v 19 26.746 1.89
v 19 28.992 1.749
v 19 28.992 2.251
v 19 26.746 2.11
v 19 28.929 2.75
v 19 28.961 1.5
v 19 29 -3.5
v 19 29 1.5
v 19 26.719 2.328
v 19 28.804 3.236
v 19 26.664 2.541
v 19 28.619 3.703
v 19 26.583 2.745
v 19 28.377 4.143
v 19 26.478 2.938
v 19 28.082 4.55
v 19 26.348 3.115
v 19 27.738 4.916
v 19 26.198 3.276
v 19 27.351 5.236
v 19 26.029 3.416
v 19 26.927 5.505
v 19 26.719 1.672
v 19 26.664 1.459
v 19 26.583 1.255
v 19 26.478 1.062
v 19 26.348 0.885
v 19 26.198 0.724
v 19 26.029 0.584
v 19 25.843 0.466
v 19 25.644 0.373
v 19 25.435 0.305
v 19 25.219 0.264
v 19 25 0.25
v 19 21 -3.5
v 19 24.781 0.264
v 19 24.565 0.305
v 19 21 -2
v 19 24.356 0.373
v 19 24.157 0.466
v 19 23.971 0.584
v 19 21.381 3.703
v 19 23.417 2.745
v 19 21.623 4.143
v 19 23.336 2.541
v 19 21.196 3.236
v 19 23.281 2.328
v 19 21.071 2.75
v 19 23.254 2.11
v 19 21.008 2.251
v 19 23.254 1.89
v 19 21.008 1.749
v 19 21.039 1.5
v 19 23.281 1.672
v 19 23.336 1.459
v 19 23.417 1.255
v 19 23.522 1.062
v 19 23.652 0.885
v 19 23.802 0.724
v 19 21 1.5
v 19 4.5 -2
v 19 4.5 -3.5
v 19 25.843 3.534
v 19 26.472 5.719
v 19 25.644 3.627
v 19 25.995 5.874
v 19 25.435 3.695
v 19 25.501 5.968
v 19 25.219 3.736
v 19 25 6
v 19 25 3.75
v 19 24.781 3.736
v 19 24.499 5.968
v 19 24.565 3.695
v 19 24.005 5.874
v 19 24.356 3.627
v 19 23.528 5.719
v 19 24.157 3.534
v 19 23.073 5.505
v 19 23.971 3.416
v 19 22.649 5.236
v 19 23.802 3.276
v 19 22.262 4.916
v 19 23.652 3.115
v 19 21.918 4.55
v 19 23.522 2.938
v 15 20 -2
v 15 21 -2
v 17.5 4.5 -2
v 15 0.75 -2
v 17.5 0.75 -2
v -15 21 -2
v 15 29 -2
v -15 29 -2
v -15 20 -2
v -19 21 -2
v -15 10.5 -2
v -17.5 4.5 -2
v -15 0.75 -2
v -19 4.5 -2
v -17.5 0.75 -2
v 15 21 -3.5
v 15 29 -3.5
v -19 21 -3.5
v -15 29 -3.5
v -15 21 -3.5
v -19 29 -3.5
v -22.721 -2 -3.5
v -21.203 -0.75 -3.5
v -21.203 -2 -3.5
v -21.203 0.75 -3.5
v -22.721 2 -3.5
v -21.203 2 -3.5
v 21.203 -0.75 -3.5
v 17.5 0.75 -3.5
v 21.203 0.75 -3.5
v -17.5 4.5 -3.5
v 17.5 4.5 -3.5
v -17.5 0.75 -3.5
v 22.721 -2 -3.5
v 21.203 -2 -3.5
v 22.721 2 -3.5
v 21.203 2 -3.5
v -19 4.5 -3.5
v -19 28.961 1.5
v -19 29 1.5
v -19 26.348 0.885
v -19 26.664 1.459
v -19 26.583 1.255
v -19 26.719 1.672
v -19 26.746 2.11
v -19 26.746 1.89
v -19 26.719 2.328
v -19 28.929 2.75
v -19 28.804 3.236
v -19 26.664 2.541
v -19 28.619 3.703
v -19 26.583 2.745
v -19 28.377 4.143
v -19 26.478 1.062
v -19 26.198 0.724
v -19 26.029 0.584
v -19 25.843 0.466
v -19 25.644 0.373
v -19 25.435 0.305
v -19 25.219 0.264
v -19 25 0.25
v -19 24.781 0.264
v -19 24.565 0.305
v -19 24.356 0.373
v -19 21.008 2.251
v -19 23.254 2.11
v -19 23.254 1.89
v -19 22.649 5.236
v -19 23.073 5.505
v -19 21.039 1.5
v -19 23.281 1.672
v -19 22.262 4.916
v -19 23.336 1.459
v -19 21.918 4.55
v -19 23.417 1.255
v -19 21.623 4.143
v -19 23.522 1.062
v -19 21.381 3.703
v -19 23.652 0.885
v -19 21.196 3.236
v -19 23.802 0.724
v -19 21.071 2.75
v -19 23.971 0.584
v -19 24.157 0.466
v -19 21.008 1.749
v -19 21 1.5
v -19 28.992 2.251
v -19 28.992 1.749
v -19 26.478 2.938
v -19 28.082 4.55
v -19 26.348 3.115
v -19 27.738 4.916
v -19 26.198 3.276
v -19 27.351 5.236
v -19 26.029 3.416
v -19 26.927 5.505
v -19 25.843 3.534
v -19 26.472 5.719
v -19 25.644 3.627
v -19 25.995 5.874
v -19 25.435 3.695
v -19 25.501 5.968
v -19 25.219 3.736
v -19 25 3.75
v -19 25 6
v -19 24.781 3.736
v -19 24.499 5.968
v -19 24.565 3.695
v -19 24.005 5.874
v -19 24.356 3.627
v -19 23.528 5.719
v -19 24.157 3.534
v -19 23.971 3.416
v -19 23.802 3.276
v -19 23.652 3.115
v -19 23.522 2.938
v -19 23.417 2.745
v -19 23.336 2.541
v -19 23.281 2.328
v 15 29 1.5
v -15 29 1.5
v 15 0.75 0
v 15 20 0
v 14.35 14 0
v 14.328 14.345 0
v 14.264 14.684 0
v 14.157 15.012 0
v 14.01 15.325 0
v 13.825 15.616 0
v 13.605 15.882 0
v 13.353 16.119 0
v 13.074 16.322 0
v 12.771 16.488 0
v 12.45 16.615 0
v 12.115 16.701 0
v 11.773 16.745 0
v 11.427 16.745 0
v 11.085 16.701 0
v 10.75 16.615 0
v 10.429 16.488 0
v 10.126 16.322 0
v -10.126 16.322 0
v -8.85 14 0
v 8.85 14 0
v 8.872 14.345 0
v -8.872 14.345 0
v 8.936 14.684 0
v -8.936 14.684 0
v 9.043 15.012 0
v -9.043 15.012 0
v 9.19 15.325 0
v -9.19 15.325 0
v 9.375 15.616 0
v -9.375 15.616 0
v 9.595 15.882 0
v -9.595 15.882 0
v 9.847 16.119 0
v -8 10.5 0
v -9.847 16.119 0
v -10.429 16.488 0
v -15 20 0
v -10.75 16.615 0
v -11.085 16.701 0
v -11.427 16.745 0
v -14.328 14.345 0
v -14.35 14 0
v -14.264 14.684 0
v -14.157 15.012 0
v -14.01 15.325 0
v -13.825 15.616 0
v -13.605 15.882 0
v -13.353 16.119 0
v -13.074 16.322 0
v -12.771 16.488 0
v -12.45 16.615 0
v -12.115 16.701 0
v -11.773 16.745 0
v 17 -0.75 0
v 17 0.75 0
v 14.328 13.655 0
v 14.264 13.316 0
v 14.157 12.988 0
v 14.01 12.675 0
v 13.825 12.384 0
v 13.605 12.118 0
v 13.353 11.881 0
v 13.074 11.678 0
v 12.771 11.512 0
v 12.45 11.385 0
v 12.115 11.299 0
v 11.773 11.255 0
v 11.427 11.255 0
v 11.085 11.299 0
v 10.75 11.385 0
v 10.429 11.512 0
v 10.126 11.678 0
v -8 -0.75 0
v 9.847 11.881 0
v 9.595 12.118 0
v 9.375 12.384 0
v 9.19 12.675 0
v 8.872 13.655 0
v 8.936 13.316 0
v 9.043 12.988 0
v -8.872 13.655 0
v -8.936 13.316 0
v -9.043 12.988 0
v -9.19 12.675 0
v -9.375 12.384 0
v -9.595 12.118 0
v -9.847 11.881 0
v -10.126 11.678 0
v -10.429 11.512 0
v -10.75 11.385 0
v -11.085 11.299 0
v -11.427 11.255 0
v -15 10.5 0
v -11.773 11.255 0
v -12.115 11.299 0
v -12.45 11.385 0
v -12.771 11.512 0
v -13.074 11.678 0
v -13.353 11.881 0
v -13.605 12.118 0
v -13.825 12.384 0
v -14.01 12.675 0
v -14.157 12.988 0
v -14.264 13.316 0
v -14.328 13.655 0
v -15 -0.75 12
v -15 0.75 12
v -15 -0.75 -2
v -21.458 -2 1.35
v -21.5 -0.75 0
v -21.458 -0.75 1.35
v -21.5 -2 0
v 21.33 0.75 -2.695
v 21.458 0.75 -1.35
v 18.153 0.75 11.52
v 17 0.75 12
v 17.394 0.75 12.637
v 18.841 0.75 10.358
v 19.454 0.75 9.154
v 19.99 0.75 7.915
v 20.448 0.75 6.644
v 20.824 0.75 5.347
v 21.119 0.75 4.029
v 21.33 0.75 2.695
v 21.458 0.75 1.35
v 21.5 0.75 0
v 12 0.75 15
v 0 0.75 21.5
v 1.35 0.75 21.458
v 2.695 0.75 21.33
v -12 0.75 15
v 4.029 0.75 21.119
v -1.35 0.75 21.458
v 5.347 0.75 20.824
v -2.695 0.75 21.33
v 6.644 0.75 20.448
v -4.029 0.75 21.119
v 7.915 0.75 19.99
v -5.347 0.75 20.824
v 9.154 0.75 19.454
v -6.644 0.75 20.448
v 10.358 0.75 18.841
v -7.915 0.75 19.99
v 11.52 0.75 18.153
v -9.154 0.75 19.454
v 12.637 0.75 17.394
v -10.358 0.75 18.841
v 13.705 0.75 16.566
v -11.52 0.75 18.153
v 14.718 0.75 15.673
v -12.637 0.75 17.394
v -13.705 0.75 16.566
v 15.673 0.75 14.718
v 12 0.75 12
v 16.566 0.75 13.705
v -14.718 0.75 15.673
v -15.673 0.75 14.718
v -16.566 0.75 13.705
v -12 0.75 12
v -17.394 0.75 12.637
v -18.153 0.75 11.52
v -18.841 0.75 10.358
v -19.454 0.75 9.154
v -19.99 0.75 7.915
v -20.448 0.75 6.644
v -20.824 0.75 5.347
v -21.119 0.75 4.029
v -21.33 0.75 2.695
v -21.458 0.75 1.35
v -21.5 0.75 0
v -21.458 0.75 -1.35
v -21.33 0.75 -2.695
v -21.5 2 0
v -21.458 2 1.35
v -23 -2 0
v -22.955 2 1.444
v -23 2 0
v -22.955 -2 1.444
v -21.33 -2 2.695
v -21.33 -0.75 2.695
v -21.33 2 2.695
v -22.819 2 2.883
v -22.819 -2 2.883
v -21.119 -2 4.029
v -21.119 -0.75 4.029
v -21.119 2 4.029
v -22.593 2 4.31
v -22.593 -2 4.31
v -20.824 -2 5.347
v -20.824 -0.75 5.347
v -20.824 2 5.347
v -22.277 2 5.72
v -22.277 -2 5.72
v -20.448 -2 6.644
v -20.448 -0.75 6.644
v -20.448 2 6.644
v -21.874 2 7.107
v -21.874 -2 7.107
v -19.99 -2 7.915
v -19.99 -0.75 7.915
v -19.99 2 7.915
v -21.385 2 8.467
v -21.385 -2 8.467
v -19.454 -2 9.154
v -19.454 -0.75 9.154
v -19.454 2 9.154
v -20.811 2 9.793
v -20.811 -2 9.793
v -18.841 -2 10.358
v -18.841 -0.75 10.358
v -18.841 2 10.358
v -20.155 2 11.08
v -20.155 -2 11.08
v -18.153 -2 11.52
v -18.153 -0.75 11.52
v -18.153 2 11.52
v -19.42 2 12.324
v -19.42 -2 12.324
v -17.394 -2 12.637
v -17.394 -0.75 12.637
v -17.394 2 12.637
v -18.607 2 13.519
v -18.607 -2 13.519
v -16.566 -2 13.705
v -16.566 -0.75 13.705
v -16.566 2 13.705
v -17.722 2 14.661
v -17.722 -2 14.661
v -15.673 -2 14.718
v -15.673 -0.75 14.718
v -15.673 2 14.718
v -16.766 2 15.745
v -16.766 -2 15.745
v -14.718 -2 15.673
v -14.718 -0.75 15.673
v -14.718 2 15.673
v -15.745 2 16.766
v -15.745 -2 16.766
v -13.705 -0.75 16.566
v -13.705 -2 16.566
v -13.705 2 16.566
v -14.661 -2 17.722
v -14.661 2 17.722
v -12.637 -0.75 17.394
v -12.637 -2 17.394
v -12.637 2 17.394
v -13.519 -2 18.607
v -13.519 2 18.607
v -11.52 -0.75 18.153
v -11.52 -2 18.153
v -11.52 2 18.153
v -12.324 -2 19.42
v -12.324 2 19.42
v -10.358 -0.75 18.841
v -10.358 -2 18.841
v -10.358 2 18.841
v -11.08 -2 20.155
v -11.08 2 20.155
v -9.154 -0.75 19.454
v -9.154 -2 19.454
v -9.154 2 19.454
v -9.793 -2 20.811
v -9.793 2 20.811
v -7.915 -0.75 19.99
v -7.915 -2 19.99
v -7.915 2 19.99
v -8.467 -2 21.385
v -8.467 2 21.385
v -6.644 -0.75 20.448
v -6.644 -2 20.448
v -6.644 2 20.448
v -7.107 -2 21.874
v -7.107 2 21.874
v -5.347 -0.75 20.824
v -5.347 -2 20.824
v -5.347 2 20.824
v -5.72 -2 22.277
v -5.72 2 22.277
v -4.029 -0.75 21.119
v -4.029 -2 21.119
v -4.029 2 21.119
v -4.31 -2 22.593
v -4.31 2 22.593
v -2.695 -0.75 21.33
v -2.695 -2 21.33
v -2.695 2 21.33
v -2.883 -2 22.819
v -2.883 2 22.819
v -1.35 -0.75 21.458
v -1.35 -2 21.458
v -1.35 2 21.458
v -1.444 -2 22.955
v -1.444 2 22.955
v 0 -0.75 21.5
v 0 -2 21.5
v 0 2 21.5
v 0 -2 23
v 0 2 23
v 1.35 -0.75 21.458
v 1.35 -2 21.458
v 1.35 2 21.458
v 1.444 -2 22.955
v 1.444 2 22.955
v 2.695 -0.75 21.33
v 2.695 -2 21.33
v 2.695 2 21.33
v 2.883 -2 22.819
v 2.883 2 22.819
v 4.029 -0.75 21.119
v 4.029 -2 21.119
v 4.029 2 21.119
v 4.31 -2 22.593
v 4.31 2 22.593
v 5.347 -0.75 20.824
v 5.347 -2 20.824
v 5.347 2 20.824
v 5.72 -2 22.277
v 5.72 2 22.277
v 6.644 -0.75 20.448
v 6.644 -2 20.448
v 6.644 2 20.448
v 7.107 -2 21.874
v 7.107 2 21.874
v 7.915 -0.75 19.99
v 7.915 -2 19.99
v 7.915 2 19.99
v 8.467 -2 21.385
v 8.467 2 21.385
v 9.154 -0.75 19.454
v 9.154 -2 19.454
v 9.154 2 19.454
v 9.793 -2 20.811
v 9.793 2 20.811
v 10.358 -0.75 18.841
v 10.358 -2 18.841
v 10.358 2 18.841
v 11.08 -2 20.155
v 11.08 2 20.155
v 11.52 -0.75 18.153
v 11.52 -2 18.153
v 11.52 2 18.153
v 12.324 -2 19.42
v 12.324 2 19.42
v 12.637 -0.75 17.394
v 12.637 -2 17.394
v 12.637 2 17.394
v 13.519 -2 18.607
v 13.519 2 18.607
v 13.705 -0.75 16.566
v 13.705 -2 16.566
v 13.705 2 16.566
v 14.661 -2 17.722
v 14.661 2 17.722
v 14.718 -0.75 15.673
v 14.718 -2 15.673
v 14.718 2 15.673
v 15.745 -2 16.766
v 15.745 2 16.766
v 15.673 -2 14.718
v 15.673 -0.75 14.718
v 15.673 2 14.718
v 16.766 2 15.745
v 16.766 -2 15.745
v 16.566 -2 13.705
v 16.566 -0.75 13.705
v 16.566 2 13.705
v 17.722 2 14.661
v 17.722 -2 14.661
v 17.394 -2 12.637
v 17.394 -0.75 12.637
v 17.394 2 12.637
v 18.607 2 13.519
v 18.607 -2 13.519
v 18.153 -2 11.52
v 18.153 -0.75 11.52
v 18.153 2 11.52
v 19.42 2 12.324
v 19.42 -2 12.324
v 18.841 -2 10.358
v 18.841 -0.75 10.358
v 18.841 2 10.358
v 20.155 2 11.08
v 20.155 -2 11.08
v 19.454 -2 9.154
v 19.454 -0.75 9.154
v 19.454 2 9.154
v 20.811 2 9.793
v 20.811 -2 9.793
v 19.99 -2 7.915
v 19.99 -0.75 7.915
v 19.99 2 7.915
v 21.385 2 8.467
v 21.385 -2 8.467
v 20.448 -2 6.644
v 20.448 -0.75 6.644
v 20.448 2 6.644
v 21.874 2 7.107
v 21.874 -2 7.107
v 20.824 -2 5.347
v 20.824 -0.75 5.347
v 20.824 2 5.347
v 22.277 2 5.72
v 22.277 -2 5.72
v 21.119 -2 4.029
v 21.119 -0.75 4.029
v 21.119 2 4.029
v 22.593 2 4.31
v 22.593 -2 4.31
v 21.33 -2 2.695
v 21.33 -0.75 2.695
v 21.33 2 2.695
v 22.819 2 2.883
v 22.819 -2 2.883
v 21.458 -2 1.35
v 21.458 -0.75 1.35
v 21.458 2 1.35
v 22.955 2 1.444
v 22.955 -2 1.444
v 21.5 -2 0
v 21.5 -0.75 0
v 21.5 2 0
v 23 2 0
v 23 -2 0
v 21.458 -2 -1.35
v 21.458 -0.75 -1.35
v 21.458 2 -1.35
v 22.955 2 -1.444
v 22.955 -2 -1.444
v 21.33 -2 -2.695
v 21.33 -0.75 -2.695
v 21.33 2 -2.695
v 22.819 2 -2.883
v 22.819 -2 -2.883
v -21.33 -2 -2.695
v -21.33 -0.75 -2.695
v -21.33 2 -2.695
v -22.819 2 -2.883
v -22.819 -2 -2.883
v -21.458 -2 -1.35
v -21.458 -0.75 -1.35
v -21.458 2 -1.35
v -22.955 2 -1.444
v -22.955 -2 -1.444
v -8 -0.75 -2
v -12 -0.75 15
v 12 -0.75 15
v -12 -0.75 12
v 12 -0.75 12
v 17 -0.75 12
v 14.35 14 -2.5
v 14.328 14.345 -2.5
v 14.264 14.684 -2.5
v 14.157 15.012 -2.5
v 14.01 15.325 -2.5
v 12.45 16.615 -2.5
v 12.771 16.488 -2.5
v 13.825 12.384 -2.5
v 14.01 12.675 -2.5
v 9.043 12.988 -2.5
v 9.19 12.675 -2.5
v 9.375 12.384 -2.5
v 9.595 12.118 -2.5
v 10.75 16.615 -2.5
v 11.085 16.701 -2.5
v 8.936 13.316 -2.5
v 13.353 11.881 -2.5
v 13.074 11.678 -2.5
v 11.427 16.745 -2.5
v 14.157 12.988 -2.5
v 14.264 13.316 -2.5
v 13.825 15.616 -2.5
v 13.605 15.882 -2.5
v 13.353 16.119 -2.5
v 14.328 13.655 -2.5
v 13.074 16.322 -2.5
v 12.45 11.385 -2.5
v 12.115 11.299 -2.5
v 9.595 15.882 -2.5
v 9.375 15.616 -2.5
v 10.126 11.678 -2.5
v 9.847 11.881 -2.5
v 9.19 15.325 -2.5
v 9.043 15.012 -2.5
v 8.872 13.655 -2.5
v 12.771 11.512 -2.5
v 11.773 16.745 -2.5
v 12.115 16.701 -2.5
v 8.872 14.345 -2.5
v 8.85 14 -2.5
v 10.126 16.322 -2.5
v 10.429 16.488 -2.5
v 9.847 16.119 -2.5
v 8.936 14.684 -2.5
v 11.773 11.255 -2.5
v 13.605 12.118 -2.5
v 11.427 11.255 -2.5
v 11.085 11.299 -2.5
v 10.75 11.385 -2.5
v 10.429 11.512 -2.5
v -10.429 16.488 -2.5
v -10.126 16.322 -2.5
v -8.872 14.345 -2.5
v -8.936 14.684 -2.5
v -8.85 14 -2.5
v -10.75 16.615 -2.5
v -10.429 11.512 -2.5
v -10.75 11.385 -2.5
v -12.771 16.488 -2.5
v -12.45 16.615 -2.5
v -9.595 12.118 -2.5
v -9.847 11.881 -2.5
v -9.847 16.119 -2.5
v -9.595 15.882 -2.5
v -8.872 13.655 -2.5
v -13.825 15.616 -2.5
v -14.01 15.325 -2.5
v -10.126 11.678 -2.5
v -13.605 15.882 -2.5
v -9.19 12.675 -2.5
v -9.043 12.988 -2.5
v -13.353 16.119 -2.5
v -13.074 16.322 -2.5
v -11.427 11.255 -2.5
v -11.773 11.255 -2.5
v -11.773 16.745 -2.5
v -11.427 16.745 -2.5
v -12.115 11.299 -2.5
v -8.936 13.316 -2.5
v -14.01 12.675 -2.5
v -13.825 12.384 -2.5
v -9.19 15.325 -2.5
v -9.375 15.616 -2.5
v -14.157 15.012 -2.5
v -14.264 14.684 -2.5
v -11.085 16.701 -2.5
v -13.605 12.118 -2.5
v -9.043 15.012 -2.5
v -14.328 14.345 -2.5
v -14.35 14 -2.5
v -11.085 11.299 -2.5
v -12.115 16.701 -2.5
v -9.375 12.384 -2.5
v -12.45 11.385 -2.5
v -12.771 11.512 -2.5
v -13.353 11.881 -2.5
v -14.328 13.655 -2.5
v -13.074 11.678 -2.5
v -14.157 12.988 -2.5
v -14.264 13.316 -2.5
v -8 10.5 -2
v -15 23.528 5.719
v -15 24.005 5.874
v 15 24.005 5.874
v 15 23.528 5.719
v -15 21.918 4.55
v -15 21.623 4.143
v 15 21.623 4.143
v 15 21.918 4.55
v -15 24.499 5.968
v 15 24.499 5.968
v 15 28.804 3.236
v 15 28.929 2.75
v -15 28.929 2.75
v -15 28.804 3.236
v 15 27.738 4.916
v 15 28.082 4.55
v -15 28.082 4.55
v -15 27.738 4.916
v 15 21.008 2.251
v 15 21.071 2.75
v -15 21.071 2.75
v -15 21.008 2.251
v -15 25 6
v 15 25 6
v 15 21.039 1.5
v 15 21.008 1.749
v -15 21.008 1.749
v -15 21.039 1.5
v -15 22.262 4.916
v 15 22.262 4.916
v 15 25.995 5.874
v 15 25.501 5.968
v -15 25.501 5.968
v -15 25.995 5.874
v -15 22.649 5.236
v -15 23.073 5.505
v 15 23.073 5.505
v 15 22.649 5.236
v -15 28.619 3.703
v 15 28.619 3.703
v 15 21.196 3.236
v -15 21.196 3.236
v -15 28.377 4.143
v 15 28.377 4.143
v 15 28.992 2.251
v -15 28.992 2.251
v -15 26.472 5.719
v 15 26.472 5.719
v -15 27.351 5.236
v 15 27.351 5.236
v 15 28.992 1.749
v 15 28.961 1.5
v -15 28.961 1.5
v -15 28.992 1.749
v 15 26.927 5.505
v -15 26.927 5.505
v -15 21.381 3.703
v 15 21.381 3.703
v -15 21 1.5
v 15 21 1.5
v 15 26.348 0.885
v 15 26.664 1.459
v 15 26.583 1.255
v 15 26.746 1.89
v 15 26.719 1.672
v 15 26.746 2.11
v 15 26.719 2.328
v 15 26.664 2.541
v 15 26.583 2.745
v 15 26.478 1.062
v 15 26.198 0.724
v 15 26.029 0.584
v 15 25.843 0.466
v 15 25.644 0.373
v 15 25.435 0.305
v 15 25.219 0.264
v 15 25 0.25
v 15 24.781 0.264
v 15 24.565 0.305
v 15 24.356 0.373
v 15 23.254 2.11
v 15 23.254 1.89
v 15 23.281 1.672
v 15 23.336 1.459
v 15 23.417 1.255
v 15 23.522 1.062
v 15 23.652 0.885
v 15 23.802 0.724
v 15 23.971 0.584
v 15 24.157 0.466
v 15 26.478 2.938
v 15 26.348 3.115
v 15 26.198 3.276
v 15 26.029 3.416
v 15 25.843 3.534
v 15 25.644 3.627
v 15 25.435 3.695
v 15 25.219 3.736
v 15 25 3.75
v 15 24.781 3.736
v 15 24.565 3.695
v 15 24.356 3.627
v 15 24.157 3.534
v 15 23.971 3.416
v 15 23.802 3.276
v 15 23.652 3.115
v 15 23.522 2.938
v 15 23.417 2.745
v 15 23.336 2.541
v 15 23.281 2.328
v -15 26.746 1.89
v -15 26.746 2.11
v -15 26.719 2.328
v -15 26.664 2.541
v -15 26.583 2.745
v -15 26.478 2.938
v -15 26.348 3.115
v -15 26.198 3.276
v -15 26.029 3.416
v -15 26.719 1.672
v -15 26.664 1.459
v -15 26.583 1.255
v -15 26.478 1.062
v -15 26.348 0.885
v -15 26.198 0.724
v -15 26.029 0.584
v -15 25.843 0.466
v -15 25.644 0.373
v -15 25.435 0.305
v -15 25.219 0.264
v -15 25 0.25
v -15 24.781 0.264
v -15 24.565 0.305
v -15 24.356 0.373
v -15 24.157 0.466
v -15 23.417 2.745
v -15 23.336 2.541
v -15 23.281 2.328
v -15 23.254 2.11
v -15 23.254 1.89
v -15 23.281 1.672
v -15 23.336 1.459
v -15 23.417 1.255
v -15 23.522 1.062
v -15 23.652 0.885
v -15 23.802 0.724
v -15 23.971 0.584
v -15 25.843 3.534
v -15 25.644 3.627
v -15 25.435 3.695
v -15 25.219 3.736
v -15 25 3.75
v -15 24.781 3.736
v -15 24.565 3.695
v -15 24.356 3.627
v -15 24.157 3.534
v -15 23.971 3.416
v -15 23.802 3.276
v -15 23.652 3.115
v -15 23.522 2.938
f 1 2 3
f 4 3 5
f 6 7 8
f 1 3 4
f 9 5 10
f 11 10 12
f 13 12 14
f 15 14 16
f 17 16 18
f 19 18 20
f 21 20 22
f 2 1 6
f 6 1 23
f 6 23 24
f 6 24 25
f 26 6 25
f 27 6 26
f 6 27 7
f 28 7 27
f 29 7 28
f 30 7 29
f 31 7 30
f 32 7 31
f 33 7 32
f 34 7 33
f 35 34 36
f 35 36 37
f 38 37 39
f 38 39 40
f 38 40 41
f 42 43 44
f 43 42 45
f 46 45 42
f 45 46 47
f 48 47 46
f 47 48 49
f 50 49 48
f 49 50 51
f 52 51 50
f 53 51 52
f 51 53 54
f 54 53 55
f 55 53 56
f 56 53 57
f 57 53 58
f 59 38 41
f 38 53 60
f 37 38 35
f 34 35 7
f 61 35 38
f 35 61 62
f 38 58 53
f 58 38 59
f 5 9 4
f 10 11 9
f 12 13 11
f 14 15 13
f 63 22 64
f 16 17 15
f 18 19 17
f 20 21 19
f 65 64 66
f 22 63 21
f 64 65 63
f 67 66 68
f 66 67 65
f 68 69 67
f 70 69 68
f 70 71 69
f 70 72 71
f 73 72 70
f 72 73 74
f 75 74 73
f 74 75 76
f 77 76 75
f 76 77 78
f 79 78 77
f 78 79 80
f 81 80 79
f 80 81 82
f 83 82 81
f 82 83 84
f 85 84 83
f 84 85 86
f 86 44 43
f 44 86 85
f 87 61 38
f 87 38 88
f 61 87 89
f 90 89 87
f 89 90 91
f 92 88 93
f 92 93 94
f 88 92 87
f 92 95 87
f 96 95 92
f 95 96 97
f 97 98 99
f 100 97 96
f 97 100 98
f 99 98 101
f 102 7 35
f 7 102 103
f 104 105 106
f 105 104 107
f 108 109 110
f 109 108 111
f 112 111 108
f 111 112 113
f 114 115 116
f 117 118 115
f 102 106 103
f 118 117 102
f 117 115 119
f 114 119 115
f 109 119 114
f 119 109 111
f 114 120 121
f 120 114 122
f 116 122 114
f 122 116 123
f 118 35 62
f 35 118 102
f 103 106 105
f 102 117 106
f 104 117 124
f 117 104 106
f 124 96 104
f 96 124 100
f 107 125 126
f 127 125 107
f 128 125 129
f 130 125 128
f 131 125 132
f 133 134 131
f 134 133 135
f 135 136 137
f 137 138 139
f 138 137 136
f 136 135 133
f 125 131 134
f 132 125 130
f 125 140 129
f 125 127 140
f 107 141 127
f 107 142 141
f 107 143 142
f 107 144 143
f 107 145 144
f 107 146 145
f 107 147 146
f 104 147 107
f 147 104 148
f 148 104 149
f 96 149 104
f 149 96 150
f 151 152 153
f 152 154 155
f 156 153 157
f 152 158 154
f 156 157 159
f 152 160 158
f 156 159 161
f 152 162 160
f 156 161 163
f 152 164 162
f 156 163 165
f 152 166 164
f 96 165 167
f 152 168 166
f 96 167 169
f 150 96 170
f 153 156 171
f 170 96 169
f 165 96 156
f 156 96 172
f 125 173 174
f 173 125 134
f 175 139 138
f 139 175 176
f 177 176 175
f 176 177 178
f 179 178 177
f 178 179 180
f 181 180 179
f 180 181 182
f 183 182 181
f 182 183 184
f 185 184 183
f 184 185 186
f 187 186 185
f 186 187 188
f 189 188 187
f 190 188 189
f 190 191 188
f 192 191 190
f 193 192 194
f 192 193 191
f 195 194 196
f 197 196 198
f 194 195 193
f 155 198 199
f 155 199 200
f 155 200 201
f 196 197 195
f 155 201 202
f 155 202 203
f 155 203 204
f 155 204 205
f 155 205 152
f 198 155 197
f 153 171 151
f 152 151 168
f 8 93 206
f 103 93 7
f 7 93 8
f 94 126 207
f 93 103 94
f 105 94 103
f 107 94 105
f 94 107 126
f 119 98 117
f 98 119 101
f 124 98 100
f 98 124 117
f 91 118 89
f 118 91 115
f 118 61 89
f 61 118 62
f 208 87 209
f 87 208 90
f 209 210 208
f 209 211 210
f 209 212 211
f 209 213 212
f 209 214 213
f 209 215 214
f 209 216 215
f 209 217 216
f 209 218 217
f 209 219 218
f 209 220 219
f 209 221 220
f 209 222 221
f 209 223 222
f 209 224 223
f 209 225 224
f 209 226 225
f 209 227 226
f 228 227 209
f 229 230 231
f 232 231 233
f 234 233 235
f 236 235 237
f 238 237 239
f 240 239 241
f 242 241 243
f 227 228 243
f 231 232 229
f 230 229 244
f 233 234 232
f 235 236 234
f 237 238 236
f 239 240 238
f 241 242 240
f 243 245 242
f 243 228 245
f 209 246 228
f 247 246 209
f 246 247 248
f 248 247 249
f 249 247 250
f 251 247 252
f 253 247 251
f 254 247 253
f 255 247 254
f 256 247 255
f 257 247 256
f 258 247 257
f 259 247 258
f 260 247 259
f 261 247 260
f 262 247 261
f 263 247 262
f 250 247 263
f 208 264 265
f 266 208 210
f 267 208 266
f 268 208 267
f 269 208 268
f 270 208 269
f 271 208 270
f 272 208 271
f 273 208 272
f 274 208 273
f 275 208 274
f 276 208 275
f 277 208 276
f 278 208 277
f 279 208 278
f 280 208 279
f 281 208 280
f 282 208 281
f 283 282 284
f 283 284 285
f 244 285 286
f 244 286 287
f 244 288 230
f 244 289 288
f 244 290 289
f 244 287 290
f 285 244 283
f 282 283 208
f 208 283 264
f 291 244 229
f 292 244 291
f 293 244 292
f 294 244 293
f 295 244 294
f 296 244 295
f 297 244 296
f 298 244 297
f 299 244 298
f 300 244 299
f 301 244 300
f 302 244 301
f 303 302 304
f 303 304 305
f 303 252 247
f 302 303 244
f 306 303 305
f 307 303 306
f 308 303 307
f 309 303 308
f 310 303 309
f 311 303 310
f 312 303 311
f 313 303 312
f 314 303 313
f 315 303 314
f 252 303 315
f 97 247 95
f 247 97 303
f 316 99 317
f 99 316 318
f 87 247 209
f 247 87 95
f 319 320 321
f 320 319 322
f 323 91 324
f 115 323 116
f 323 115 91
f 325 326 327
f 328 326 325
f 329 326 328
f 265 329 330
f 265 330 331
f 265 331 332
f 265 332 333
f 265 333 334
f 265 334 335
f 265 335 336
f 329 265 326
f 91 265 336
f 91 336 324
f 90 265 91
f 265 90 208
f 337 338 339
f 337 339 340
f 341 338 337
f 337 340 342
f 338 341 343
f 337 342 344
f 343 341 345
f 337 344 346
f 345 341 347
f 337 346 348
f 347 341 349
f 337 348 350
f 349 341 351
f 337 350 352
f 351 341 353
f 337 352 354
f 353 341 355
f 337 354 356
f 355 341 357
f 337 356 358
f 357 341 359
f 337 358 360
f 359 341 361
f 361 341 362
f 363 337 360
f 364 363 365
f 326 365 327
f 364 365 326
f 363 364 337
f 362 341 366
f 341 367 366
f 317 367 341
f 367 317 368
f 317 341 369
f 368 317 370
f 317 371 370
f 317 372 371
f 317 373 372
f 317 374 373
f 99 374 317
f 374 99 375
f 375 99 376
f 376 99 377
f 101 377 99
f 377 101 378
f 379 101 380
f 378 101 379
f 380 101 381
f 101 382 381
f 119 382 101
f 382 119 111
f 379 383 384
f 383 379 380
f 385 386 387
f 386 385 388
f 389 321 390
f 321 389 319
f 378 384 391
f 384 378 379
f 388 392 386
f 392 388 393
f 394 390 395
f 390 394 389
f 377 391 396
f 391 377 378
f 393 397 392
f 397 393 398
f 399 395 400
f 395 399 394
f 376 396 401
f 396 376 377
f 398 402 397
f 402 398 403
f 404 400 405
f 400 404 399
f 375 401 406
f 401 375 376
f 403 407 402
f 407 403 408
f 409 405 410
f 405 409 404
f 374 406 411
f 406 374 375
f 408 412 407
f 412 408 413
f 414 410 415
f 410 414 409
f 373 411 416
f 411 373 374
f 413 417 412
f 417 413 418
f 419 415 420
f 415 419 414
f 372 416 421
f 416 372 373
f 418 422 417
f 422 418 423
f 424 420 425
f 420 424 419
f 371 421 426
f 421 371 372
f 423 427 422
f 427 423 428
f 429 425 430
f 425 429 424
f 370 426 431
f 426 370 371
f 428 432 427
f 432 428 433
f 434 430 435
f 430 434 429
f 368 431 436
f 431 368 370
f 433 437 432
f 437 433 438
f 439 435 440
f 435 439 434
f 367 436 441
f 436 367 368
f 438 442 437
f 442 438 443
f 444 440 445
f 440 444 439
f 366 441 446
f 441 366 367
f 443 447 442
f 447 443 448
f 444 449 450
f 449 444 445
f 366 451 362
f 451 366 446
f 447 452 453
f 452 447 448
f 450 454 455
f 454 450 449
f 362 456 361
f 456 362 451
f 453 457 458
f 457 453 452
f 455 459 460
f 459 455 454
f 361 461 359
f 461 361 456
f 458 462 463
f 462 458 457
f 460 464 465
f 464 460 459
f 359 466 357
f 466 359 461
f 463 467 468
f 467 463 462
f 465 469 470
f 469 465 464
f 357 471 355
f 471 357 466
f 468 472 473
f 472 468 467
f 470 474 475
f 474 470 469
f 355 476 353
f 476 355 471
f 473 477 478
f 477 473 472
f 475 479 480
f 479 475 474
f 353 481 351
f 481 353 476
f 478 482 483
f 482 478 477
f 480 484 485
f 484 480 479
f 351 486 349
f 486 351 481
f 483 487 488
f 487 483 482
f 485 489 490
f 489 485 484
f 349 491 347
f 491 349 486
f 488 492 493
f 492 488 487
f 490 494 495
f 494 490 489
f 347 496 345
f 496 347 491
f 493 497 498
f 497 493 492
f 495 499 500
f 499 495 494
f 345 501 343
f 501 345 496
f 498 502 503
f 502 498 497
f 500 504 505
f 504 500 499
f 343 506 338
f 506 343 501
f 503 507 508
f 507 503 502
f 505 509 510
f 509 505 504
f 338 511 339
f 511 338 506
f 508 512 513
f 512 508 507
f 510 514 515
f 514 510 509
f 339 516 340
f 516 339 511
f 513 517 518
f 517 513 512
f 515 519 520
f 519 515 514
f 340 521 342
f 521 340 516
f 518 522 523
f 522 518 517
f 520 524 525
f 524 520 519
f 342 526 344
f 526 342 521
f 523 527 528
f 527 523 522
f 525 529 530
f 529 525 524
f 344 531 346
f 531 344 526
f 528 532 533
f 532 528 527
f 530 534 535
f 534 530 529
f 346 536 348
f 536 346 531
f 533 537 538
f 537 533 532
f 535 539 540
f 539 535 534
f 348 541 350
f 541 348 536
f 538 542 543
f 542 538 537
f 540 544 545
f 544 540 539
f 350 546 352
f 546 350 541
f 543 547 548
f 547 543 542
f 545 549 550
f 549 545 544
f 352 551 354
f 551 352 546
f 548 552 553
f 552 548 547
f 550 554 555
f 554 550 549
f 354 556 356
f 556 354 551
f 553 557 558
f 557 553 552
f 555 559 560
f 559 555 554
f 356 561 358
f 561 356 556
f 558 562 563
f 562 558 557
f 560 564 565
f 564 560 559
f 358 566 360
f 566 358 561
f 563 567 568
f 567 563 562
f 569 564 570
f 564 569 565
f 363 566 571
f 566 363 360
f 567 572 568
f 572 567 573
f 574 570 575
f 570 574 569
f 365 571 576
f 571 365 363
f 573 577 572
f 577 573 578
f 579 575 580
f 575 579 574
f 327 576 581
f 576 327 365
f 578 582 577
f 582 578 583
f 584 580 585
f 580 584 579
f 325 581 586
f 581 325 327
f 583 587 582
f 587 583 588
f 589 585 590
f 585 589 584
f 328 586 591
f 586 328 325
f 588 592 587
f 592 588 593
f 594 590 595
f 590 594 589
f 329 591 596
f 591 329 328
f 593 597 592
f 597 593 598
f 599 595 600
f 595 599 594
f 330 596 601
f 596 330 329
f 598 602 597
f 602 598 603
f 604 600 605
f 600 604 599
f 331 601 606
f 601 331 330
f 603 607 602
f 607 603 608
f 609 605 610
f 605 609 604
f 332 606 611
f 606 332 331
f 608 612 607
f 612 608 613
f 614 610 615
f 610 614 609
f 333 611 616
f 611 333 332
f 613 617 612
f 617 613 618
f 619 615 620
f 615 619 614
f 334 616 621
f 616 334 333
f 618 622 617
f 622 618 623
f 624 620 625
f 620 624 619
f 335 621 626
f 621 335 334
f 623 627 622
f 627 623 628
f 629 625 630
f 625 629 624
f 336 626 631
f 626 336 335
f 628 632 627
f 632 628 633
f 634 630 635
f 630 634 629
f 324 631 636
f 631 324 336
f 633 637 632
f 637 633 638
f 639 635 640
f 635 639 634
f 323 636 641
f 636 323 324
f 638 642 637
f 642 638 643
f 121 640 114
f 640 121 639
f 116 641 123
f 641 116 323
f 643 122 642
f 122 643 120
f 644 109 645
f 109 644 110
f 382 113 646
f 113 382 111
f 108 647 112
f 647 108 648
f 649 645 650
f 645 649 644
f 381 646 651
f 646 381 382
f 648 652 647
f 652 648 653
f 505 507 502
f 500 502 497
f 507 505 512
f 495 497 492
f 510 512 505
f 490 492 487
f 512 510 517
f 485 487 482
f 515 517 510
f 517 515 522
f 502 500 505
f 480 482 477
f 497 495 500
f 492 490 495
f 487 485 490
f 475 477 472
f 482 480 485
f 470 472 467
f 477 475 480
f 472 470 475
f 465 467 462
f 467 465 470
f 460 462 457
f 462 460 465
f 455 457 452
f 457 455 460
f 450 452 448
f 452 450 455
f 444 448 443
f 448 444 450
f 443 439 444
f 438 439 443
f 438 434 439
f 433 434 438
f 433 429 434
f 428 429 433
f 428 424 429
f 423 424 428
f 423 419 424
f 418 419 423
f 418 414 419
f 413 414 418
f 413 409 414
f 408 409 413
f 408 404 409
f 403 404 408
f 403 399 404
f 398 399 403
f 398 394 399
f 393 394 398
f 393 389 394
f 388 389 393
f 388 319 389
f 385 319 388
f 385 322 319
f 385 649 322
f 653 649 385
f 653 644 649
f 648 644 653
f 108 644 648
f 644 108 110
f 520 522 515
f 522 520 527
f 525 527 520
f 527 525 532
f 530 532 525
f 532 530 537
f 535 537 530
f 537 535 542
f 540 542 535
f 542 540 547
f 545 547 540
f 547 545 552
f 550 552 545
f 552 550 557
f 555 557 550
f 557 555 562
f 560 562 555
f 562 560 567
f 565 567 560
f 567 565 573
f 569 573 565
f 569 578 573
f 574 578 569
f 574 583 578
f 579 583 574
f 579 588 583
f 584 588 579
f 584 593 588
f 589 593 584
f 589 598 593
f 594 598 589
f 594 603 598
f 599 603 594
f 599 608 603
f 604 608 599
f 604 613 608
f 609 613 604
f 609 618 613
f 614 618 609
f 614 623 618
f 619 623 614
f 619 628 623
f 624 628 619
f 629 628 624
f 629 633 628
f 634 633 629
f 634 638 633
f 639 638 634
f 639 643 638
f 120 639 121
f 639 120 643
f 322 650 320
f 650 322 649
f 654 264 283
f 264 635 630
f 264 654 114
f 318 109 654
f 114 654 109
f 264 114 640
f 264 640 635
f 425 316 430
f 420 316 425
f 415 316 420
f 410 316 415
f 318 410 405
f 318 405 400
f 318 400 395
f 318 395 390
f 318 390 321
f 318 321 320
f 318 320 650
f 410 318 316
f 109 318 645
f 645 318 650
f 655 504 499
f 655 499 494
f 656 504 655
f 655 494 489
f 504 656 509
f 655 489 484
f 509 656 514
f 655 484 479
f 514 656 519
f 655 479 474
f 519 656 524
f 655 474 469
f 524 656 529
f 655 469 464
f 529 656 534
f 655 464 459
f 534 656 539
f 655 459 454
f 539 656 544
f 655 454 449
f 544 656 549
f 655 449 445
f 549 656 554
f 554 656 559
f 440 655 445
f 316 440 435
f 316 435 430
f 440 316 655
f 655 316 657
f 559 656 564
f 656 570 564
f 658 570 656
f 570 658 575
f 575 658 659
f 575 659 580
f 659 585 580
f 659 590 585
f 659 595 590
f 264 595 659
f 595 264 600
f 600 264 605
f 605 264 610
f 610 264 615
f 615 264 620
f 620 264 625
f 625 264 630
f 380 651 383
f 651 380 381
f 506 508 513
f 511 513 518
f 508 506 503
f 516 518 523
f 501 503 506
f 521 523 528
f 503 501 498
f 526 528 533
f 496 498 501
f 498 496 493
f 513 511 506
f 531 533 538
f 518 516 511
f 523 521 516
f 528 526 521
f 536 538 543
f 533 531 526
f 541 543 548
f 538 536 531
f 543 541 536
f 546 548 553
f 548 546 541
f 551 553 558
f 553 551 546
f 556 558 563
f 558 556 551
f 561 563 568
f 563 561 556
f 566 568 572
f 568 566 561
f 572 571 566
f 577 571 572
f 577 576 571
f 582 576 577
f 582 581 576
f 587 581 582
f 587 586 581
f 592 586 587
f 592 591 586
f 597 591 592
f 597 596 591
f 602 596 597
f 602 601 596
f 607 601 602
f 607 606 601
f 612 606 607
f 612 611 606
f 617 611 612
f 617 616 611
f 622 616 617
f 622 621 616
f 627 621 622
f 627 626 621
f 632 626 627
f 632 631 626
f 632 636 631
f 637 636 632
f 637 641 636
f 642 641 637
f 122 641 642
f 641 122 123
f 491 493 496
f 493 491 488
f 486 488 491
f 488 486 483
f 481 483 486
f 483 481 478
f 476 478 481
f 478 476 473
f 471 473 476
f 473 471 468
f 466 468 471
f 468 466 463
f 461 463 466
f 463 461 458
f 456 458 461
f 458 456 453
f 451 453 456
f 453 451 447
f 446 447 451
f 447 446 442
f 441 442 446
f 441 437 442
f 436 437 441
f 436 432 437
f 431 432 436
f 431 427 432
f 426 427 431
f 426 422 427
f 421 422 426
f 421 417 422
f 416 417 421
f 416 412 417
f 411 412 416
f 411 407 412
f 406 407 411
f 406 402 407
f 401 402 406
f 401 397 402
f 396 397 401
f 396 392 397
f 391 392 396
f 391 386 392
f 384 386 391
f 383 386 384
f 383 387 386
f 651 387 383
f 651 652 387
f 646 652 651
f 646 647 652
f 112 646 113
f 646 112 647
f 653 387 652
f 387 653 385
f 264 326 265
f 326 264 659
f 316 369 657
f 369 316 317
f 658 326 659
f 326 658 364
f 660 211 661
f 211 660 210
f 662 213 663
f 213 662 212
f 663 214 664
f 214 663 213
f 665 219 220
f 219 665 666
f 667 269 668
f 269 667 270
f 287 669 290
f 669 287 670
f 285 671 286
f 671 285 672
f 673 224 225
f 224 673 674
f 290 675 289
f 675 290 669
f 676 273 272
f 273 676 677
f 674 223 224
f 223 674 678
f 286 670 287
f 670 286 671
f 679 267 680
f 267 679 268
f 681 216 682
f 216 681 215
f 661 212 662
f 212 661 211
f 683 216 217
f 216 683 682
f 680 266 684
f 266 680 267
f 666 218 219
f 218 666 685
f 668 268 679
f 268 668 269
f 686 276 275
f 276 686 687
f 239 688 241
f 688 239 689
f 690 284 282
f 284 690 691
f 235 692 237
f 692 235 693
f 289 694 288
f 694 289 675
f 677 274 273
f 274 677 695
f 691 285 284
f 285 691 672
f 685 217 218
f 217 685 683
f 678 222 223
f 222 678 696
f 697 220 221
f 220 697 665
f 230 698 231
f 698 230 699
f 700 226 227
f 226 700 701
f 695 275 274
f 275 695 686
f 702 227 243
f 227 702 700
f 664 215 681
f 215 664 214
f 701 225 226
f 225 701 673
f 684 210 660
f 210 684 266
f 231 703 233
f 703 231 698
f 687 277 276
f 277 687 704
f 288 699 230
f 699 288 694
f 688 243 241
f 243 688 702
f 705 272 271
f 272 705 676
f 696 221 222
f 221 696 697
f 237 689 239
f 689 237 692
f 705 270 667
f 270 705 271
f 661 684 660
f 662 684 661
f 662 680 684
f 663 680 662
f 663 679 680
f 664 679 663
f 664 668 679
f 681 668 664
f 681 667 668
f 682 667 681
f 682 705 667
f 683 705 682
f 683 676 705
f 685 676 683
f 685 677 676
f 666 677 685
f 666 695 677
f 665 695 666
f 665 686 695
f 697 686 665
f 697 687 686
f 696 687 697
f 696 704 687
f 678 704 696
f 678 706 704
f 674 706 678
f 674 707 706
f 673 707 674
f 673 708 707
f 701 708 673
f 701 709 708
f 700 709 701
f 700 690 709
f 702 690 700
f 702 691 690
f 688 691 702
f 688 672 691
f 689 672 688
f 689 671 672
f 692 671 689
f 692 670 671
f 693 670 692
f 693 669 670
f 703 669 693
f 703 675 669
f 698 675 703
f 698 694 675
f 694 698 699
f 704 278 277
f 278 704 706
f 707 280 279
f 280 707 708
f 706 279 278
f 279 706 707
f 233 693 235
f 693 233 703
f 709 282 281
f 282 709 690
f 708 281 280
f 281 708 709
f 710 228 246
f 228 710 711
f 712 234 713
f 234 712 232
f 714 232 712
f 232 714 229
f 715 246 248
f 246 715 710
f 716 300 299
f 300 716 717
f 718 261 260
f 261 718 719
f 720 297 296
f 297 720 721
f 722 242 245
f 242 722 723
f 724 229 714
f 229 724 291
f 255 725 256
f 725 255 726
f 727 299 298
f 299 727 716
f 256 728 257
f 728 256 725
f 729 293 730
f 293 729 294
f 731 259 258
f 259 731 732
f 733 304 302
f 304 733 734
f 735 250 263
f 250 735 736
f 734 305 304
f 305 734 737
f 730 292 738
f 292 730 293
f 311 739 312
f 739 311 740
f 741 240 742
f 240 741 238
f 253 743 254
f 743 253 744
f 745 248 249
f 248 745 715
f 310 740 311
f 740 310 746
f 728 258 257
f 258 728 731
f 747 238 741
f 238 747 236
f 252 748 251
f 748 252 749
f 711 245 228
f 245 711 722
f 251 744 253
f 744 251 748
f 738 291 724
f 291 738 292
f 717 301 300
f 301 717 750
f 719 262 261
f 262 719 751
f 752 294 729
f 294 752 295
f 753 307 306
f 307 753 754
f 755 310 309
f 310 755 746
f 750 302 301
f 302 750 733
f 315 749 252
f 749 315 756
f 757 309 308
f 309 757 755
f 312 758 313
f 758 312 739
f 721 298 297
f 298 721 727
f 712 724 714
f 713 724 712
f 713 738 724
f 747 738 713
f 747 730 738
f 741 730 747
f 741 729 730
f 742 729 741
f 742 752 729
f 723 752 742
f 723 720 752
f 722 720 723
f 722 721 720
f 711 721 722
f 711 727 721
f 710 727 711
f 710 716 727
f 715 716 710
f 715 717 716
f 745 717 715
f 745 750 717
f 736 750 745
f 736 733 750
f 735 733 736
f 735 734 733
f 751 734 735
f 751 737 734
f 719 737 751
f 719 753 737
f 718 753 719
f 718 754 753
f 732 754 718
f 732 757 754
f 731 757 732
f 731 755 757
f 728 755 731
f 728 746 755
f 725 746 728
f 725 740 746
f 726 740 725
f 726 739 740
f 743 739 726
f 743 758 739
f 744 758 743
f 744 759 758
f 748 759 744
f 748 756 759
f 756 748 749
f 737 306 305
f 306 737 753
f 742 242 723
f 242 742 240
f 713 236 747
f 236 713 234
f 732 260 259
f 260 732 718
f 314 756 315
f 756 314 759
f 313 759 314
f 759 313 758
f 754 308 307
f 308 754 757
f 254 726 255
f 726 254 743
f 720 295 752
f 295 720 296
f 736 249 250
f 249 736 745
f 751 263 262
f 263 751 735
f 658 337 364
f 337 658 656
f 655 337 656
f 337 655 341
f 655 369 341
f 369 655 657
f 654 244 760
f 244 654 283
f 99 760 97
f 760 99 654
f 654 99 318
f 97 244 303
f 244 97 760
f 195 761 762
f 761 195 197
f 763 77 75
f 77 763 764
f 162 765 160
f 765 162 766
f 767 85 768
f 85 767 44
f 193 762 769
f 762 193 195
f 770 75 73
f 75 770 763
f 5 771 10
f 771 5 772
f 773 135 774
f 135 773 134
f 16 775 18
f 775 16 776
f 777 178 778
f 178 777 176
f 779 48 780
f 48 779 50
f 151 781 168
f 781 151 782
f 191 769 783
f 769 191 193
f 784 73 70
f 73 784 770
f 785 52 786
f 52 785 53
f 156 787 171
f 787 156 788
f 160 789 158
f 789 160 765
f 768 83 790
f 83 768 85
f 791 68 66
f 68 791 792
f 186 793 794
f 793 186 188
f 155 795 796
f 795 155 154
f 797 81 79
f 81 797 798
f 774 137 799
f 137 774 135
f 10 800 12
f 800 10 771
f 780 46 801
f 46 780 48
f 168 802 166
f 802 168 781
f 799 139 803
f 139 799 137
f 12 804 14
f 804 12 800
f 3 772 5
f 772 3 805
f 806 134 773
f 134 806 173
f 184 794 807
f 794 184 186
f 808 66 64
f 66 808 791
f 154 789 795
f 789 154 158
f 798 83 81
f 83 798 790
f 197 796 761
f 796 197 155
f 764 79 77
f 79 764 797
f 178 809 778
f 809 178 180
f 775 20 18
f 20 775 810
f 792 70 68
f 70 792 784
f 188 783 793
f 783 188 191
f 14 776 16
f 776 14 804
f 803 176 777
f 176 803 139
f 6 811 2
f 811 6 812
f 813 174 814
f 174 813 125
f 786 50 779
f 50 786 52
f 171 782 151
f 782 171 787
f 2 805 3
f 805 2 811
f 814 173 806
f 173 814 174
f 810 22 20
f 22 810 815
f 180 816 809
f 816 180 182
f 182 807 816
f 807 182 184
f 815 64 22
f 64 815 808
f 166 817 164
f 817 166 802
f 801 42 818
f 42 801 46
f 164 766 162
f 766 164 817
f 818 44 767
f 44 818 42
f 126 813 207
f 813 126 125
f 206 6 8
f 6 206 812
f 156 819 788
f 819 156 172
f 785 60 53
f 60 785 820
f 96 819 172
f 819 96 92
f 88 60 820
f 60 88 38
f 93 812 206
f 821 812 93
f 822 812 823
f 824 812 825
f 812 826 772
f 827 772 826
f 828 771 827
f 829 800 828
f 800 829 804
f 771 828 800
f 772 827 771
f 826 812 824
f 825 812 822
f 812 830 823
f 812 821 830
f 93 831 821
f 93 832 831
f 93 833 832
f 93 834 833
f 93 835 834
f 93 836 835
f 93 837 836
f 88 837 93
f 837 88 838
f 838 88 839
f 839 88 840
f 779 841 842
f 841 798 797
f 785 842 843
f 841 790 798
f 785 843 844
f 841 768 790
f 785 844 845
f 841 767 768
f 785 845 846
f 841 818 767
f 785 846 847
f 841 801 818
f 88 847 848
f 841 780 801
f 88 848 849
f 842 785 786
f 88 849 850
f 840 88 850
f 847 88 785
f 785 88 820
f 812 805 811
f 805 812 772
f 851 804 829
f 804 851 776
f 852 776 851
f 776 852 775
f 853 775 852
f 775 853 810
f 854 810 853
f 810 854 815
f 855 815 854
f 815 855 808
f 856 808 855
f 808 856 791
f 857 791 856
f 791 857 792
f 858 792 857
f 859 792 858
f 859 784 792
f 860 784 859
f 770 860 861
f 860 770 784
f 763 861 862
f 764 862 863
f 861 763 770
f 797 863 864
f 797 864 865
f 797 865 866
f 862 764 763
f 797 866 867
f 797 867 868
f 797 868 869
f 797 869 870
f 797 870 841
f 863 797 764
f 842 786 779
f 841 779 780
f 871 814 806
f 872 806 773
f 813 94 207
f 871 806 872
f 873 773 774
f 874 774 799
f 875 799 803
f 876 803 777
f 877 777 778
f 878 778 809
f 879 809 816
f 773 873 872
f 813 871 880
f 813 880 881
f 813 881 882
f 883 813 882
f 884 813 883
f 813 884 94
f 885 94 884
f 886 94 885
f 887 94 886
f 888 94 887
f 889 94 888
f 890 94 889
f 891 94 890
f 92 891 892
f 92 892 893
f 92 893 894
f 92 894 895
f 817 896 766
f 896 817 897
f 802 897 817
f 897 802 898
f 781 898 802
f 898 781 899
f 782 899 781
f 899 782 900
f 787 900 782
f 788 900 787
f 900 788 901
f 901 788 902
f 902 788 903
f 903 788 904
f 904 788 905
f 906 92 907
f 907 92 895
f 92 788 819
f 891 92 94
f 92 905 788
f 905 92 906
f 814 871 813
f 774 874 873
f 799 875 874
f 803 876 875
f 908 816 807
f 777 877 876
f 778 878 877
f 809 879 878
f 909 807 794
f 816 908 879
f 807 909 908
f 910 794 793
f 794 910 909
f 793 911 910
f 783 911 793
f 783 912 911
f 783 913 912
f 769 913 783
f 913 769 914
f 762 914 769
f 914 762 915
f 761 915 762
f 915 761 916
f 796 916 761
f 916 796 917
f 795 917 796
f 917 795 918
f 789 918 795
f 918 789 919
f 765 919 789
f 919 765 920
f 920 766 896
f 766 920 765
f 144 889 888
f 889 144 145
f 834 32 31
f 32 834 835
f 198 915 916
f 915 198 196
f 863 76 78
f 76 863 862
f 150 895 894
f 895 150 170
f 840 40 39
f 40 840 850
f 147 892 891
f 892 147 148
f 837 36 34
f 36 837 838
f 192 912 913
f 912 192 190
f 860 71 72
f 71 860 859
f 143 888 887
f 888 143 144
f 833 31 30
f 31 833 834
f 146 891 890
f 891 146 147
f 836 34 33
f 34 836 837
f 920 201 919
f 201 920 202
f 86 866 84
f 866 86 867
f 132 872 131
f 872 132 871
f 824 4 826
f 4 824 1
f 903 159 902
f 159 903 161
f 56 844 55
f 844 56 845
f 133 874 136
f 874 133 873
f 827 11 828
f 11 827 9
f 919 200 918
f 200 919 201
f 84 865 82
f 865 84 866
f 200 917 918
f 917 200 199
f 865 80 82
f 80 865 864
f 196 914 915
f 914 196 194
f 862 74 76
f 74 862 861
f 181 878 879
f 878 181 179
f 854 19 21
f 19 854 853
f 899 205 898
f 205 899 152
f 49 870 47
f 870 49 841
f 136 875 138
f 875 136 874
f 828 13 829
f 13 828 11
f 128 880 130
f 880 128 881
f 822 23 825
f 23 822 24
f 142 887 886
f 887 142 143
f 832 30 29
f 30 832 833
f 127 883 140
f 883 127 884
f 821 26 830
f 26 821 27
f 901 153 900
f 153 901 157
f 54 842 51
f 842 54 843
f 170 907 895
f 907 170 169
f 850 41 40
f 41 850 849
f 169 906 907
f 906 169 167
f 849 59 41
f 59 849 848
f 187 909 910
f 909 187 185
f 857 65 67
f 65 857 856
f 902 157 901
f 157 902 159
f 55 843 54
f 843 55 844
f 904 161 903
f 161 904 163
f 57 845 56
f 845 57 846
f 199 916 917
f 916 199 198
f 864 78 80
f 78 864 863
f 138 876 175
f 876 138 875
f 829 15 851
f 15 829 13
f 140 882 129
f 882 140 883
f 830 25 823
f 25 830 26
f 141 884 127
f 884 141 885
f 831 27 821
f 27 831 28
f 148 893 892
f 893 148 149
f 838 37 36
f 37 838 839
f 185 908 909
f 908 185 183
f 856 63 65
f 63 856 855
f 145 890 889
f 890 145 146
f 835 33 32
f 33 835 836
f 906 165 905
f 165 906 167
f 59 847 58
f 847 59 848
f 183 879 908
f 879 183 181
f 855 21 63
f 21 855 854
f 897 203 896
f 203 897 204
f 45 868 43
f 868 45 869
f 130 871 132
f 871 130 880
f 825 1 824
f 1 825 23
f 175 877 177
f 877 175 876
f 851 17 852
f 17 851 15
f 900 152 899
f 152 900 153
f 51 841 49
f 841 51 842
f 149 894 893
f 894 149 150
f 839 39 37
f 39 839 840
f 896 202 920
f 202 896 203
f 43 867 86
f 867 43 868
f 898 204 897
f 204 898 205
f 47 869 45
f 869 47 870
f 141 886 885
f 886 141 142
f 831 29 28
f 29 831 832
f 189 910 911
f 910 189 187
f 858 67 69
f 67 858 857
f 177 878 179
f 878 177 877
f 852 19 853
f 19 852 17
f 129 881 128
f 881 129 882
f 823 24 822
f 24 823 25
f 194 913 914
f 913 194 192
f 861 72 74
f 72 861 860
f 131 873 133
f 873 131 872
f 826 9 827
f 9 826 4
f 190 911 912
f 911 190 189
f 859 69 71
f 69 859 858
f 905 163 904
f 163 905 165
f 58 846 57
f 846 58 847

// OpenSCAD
/* =====================================================================================
 *
 *       Filename:  rpi_holer.scad
 *
 *    Description:  rpi zero holder
 *
 *        Version:  1.0
 *        Created:  29 05 2020
 *       Revision:  none
 *       Compiler:  gcc
 *
 *         Author:  Sebastien (sinux), seba.ptl@sinux.net
 *
 * =====================================================================================
 */

/* mobile rpi holder */
module mobile(){
  translate([0, 25, 2]) difference(){
    union() {
      rotate([0,90,0])  cylinder(d=8,h=38, center=true, $fn=50);
      translate([0,0,-3]) cube([38,8,5], center=true);
    }
    cube([30,20,20], center=true);
    rotate([0,90,0]) cylinder(d=3.5,h=50, center=true, $fn=50);
  }


  difference(){
    union(){
      translate([-15, 0, -3.5]) cube([30,20,3.5]);
      // base
      difference() {
        translate([-19,0,-3.5]) cube([38,29,1.5]);
        // opening
        translate([-19,0,-3.5]) cube([3,9,20], center=true);
        translate([19,0,-3.5]) cube([3,9,20], center=true);
      }
  
      // rotation
      rotate([90,0,0]) rotate_extrude($fn=100) union(){
        translate([0,-0.75,6]) square([22,1.5]);
        translate([21.5,-2,6]) square([1.5,4]);
      }
    }
    translate([-50,-20,-53.5]) cube([100, 100, 50]);
    translate([1,0,6]) cube([32,60,12], center=true);
    translate([11.6,14,0]) cylinder(d=5.5,h=5, center=true, $fn=50);
    translate([-11.6,14,0]) cylinder(d=5.5,h=5, center=true, $fn=50);
    translate([-12,-5,0]) cube([24,10,15]);
    translate([-15,-2,-2]) cube([7,12.5,5]);
  }
}

/* support */
module support(){
  union() { 
    translate([0,6,0]) difference(){
      translate([0,0,-4]) cylinder(d=50, h=8, $fn=100);
      rotate_extrude($fn=100) union(){
        translate([0,-1,0]) square([22,2]);
        translate([21.25,-2.5,0]) square([2,5]);
      }
      translate([0,0,-5]) cylinder(d=35, h=10, $fn=100);
      translate([-50,0,-5]) cube([100,60,10]); 
    }

    difference() {translate([23.5,3,-9]) cube([20,3,18]);
      rotate([90,0,0]) translate([35,0,-9]) cylinder(d=7, h=30, center=true, $fn=50);}
    difference() {translate([-43.5,3,-9]) cube([20,3,18]);
      rotate([90,0,0]) translate([-35,0,-9]) cylinder(d=7, h=30, center=true, $fn=50);}

    //translate([35.5,0,-4]) cube([8,26,8]);
    //translate([-43.5,0,-4]) cube([8,26,8]);
  }
}

/* cam holder */
module cam(){
  union(){
    difference() {
      translate([-15,0,0]) cube([30,24,1.5]);
      translate([-7.5,4,0])cube([15,22,5]);
      translate([10.5,9.5,0]) cylinder(d=2.5, h=10, $fn=50);
      translate([-10.5,9.5,0]) cylinder(d=2.5, h=10, $fn=50);
      translate([10.5,21.5,0]) cylinder(d=2.5, h=10, $fn=50);
      translate([-10.5,21.5,0]) cylinder(d=2.5, h=10, $fn=50);
    }
    
    translate([-15,0,0]) union() {
      difference() { 
        hull(){
          translate([0,-5,0]) cube([3,10,1.5]);
          translate([1.5,-10,11]) rotate([90,0,90]) cylinder(d=6, h=3, center=true, $fn=50);
        }
        translate([1,-10,11]) rotate([90,0,90]) cylinder(d=2.5, h=10, center=true, $fn=50);
      }
    } 
    translate([12,0,0]) union() {
      difference() { 
        hull(){
          translate([0,-5,0]) cube([3,10,1.5]);
          translate([1.5,-10,11]) rotate([90,0,90]) cylinder(d=6, h=3, center=true, $fn=50);
        }
        translate([1,-10,11]) rotate([90,0,90]) cylinder(d=2.5, h=10, center=true, $fn=50);
      }
    }
  }
}

//rotate([0,-45,0]) {
  mobile();
//  translate([0,38,9]) rotate([20,180,0]) cam();
//}
//translate([0,0,6]) rotate([-90,0,0]) support();

//mobile();
